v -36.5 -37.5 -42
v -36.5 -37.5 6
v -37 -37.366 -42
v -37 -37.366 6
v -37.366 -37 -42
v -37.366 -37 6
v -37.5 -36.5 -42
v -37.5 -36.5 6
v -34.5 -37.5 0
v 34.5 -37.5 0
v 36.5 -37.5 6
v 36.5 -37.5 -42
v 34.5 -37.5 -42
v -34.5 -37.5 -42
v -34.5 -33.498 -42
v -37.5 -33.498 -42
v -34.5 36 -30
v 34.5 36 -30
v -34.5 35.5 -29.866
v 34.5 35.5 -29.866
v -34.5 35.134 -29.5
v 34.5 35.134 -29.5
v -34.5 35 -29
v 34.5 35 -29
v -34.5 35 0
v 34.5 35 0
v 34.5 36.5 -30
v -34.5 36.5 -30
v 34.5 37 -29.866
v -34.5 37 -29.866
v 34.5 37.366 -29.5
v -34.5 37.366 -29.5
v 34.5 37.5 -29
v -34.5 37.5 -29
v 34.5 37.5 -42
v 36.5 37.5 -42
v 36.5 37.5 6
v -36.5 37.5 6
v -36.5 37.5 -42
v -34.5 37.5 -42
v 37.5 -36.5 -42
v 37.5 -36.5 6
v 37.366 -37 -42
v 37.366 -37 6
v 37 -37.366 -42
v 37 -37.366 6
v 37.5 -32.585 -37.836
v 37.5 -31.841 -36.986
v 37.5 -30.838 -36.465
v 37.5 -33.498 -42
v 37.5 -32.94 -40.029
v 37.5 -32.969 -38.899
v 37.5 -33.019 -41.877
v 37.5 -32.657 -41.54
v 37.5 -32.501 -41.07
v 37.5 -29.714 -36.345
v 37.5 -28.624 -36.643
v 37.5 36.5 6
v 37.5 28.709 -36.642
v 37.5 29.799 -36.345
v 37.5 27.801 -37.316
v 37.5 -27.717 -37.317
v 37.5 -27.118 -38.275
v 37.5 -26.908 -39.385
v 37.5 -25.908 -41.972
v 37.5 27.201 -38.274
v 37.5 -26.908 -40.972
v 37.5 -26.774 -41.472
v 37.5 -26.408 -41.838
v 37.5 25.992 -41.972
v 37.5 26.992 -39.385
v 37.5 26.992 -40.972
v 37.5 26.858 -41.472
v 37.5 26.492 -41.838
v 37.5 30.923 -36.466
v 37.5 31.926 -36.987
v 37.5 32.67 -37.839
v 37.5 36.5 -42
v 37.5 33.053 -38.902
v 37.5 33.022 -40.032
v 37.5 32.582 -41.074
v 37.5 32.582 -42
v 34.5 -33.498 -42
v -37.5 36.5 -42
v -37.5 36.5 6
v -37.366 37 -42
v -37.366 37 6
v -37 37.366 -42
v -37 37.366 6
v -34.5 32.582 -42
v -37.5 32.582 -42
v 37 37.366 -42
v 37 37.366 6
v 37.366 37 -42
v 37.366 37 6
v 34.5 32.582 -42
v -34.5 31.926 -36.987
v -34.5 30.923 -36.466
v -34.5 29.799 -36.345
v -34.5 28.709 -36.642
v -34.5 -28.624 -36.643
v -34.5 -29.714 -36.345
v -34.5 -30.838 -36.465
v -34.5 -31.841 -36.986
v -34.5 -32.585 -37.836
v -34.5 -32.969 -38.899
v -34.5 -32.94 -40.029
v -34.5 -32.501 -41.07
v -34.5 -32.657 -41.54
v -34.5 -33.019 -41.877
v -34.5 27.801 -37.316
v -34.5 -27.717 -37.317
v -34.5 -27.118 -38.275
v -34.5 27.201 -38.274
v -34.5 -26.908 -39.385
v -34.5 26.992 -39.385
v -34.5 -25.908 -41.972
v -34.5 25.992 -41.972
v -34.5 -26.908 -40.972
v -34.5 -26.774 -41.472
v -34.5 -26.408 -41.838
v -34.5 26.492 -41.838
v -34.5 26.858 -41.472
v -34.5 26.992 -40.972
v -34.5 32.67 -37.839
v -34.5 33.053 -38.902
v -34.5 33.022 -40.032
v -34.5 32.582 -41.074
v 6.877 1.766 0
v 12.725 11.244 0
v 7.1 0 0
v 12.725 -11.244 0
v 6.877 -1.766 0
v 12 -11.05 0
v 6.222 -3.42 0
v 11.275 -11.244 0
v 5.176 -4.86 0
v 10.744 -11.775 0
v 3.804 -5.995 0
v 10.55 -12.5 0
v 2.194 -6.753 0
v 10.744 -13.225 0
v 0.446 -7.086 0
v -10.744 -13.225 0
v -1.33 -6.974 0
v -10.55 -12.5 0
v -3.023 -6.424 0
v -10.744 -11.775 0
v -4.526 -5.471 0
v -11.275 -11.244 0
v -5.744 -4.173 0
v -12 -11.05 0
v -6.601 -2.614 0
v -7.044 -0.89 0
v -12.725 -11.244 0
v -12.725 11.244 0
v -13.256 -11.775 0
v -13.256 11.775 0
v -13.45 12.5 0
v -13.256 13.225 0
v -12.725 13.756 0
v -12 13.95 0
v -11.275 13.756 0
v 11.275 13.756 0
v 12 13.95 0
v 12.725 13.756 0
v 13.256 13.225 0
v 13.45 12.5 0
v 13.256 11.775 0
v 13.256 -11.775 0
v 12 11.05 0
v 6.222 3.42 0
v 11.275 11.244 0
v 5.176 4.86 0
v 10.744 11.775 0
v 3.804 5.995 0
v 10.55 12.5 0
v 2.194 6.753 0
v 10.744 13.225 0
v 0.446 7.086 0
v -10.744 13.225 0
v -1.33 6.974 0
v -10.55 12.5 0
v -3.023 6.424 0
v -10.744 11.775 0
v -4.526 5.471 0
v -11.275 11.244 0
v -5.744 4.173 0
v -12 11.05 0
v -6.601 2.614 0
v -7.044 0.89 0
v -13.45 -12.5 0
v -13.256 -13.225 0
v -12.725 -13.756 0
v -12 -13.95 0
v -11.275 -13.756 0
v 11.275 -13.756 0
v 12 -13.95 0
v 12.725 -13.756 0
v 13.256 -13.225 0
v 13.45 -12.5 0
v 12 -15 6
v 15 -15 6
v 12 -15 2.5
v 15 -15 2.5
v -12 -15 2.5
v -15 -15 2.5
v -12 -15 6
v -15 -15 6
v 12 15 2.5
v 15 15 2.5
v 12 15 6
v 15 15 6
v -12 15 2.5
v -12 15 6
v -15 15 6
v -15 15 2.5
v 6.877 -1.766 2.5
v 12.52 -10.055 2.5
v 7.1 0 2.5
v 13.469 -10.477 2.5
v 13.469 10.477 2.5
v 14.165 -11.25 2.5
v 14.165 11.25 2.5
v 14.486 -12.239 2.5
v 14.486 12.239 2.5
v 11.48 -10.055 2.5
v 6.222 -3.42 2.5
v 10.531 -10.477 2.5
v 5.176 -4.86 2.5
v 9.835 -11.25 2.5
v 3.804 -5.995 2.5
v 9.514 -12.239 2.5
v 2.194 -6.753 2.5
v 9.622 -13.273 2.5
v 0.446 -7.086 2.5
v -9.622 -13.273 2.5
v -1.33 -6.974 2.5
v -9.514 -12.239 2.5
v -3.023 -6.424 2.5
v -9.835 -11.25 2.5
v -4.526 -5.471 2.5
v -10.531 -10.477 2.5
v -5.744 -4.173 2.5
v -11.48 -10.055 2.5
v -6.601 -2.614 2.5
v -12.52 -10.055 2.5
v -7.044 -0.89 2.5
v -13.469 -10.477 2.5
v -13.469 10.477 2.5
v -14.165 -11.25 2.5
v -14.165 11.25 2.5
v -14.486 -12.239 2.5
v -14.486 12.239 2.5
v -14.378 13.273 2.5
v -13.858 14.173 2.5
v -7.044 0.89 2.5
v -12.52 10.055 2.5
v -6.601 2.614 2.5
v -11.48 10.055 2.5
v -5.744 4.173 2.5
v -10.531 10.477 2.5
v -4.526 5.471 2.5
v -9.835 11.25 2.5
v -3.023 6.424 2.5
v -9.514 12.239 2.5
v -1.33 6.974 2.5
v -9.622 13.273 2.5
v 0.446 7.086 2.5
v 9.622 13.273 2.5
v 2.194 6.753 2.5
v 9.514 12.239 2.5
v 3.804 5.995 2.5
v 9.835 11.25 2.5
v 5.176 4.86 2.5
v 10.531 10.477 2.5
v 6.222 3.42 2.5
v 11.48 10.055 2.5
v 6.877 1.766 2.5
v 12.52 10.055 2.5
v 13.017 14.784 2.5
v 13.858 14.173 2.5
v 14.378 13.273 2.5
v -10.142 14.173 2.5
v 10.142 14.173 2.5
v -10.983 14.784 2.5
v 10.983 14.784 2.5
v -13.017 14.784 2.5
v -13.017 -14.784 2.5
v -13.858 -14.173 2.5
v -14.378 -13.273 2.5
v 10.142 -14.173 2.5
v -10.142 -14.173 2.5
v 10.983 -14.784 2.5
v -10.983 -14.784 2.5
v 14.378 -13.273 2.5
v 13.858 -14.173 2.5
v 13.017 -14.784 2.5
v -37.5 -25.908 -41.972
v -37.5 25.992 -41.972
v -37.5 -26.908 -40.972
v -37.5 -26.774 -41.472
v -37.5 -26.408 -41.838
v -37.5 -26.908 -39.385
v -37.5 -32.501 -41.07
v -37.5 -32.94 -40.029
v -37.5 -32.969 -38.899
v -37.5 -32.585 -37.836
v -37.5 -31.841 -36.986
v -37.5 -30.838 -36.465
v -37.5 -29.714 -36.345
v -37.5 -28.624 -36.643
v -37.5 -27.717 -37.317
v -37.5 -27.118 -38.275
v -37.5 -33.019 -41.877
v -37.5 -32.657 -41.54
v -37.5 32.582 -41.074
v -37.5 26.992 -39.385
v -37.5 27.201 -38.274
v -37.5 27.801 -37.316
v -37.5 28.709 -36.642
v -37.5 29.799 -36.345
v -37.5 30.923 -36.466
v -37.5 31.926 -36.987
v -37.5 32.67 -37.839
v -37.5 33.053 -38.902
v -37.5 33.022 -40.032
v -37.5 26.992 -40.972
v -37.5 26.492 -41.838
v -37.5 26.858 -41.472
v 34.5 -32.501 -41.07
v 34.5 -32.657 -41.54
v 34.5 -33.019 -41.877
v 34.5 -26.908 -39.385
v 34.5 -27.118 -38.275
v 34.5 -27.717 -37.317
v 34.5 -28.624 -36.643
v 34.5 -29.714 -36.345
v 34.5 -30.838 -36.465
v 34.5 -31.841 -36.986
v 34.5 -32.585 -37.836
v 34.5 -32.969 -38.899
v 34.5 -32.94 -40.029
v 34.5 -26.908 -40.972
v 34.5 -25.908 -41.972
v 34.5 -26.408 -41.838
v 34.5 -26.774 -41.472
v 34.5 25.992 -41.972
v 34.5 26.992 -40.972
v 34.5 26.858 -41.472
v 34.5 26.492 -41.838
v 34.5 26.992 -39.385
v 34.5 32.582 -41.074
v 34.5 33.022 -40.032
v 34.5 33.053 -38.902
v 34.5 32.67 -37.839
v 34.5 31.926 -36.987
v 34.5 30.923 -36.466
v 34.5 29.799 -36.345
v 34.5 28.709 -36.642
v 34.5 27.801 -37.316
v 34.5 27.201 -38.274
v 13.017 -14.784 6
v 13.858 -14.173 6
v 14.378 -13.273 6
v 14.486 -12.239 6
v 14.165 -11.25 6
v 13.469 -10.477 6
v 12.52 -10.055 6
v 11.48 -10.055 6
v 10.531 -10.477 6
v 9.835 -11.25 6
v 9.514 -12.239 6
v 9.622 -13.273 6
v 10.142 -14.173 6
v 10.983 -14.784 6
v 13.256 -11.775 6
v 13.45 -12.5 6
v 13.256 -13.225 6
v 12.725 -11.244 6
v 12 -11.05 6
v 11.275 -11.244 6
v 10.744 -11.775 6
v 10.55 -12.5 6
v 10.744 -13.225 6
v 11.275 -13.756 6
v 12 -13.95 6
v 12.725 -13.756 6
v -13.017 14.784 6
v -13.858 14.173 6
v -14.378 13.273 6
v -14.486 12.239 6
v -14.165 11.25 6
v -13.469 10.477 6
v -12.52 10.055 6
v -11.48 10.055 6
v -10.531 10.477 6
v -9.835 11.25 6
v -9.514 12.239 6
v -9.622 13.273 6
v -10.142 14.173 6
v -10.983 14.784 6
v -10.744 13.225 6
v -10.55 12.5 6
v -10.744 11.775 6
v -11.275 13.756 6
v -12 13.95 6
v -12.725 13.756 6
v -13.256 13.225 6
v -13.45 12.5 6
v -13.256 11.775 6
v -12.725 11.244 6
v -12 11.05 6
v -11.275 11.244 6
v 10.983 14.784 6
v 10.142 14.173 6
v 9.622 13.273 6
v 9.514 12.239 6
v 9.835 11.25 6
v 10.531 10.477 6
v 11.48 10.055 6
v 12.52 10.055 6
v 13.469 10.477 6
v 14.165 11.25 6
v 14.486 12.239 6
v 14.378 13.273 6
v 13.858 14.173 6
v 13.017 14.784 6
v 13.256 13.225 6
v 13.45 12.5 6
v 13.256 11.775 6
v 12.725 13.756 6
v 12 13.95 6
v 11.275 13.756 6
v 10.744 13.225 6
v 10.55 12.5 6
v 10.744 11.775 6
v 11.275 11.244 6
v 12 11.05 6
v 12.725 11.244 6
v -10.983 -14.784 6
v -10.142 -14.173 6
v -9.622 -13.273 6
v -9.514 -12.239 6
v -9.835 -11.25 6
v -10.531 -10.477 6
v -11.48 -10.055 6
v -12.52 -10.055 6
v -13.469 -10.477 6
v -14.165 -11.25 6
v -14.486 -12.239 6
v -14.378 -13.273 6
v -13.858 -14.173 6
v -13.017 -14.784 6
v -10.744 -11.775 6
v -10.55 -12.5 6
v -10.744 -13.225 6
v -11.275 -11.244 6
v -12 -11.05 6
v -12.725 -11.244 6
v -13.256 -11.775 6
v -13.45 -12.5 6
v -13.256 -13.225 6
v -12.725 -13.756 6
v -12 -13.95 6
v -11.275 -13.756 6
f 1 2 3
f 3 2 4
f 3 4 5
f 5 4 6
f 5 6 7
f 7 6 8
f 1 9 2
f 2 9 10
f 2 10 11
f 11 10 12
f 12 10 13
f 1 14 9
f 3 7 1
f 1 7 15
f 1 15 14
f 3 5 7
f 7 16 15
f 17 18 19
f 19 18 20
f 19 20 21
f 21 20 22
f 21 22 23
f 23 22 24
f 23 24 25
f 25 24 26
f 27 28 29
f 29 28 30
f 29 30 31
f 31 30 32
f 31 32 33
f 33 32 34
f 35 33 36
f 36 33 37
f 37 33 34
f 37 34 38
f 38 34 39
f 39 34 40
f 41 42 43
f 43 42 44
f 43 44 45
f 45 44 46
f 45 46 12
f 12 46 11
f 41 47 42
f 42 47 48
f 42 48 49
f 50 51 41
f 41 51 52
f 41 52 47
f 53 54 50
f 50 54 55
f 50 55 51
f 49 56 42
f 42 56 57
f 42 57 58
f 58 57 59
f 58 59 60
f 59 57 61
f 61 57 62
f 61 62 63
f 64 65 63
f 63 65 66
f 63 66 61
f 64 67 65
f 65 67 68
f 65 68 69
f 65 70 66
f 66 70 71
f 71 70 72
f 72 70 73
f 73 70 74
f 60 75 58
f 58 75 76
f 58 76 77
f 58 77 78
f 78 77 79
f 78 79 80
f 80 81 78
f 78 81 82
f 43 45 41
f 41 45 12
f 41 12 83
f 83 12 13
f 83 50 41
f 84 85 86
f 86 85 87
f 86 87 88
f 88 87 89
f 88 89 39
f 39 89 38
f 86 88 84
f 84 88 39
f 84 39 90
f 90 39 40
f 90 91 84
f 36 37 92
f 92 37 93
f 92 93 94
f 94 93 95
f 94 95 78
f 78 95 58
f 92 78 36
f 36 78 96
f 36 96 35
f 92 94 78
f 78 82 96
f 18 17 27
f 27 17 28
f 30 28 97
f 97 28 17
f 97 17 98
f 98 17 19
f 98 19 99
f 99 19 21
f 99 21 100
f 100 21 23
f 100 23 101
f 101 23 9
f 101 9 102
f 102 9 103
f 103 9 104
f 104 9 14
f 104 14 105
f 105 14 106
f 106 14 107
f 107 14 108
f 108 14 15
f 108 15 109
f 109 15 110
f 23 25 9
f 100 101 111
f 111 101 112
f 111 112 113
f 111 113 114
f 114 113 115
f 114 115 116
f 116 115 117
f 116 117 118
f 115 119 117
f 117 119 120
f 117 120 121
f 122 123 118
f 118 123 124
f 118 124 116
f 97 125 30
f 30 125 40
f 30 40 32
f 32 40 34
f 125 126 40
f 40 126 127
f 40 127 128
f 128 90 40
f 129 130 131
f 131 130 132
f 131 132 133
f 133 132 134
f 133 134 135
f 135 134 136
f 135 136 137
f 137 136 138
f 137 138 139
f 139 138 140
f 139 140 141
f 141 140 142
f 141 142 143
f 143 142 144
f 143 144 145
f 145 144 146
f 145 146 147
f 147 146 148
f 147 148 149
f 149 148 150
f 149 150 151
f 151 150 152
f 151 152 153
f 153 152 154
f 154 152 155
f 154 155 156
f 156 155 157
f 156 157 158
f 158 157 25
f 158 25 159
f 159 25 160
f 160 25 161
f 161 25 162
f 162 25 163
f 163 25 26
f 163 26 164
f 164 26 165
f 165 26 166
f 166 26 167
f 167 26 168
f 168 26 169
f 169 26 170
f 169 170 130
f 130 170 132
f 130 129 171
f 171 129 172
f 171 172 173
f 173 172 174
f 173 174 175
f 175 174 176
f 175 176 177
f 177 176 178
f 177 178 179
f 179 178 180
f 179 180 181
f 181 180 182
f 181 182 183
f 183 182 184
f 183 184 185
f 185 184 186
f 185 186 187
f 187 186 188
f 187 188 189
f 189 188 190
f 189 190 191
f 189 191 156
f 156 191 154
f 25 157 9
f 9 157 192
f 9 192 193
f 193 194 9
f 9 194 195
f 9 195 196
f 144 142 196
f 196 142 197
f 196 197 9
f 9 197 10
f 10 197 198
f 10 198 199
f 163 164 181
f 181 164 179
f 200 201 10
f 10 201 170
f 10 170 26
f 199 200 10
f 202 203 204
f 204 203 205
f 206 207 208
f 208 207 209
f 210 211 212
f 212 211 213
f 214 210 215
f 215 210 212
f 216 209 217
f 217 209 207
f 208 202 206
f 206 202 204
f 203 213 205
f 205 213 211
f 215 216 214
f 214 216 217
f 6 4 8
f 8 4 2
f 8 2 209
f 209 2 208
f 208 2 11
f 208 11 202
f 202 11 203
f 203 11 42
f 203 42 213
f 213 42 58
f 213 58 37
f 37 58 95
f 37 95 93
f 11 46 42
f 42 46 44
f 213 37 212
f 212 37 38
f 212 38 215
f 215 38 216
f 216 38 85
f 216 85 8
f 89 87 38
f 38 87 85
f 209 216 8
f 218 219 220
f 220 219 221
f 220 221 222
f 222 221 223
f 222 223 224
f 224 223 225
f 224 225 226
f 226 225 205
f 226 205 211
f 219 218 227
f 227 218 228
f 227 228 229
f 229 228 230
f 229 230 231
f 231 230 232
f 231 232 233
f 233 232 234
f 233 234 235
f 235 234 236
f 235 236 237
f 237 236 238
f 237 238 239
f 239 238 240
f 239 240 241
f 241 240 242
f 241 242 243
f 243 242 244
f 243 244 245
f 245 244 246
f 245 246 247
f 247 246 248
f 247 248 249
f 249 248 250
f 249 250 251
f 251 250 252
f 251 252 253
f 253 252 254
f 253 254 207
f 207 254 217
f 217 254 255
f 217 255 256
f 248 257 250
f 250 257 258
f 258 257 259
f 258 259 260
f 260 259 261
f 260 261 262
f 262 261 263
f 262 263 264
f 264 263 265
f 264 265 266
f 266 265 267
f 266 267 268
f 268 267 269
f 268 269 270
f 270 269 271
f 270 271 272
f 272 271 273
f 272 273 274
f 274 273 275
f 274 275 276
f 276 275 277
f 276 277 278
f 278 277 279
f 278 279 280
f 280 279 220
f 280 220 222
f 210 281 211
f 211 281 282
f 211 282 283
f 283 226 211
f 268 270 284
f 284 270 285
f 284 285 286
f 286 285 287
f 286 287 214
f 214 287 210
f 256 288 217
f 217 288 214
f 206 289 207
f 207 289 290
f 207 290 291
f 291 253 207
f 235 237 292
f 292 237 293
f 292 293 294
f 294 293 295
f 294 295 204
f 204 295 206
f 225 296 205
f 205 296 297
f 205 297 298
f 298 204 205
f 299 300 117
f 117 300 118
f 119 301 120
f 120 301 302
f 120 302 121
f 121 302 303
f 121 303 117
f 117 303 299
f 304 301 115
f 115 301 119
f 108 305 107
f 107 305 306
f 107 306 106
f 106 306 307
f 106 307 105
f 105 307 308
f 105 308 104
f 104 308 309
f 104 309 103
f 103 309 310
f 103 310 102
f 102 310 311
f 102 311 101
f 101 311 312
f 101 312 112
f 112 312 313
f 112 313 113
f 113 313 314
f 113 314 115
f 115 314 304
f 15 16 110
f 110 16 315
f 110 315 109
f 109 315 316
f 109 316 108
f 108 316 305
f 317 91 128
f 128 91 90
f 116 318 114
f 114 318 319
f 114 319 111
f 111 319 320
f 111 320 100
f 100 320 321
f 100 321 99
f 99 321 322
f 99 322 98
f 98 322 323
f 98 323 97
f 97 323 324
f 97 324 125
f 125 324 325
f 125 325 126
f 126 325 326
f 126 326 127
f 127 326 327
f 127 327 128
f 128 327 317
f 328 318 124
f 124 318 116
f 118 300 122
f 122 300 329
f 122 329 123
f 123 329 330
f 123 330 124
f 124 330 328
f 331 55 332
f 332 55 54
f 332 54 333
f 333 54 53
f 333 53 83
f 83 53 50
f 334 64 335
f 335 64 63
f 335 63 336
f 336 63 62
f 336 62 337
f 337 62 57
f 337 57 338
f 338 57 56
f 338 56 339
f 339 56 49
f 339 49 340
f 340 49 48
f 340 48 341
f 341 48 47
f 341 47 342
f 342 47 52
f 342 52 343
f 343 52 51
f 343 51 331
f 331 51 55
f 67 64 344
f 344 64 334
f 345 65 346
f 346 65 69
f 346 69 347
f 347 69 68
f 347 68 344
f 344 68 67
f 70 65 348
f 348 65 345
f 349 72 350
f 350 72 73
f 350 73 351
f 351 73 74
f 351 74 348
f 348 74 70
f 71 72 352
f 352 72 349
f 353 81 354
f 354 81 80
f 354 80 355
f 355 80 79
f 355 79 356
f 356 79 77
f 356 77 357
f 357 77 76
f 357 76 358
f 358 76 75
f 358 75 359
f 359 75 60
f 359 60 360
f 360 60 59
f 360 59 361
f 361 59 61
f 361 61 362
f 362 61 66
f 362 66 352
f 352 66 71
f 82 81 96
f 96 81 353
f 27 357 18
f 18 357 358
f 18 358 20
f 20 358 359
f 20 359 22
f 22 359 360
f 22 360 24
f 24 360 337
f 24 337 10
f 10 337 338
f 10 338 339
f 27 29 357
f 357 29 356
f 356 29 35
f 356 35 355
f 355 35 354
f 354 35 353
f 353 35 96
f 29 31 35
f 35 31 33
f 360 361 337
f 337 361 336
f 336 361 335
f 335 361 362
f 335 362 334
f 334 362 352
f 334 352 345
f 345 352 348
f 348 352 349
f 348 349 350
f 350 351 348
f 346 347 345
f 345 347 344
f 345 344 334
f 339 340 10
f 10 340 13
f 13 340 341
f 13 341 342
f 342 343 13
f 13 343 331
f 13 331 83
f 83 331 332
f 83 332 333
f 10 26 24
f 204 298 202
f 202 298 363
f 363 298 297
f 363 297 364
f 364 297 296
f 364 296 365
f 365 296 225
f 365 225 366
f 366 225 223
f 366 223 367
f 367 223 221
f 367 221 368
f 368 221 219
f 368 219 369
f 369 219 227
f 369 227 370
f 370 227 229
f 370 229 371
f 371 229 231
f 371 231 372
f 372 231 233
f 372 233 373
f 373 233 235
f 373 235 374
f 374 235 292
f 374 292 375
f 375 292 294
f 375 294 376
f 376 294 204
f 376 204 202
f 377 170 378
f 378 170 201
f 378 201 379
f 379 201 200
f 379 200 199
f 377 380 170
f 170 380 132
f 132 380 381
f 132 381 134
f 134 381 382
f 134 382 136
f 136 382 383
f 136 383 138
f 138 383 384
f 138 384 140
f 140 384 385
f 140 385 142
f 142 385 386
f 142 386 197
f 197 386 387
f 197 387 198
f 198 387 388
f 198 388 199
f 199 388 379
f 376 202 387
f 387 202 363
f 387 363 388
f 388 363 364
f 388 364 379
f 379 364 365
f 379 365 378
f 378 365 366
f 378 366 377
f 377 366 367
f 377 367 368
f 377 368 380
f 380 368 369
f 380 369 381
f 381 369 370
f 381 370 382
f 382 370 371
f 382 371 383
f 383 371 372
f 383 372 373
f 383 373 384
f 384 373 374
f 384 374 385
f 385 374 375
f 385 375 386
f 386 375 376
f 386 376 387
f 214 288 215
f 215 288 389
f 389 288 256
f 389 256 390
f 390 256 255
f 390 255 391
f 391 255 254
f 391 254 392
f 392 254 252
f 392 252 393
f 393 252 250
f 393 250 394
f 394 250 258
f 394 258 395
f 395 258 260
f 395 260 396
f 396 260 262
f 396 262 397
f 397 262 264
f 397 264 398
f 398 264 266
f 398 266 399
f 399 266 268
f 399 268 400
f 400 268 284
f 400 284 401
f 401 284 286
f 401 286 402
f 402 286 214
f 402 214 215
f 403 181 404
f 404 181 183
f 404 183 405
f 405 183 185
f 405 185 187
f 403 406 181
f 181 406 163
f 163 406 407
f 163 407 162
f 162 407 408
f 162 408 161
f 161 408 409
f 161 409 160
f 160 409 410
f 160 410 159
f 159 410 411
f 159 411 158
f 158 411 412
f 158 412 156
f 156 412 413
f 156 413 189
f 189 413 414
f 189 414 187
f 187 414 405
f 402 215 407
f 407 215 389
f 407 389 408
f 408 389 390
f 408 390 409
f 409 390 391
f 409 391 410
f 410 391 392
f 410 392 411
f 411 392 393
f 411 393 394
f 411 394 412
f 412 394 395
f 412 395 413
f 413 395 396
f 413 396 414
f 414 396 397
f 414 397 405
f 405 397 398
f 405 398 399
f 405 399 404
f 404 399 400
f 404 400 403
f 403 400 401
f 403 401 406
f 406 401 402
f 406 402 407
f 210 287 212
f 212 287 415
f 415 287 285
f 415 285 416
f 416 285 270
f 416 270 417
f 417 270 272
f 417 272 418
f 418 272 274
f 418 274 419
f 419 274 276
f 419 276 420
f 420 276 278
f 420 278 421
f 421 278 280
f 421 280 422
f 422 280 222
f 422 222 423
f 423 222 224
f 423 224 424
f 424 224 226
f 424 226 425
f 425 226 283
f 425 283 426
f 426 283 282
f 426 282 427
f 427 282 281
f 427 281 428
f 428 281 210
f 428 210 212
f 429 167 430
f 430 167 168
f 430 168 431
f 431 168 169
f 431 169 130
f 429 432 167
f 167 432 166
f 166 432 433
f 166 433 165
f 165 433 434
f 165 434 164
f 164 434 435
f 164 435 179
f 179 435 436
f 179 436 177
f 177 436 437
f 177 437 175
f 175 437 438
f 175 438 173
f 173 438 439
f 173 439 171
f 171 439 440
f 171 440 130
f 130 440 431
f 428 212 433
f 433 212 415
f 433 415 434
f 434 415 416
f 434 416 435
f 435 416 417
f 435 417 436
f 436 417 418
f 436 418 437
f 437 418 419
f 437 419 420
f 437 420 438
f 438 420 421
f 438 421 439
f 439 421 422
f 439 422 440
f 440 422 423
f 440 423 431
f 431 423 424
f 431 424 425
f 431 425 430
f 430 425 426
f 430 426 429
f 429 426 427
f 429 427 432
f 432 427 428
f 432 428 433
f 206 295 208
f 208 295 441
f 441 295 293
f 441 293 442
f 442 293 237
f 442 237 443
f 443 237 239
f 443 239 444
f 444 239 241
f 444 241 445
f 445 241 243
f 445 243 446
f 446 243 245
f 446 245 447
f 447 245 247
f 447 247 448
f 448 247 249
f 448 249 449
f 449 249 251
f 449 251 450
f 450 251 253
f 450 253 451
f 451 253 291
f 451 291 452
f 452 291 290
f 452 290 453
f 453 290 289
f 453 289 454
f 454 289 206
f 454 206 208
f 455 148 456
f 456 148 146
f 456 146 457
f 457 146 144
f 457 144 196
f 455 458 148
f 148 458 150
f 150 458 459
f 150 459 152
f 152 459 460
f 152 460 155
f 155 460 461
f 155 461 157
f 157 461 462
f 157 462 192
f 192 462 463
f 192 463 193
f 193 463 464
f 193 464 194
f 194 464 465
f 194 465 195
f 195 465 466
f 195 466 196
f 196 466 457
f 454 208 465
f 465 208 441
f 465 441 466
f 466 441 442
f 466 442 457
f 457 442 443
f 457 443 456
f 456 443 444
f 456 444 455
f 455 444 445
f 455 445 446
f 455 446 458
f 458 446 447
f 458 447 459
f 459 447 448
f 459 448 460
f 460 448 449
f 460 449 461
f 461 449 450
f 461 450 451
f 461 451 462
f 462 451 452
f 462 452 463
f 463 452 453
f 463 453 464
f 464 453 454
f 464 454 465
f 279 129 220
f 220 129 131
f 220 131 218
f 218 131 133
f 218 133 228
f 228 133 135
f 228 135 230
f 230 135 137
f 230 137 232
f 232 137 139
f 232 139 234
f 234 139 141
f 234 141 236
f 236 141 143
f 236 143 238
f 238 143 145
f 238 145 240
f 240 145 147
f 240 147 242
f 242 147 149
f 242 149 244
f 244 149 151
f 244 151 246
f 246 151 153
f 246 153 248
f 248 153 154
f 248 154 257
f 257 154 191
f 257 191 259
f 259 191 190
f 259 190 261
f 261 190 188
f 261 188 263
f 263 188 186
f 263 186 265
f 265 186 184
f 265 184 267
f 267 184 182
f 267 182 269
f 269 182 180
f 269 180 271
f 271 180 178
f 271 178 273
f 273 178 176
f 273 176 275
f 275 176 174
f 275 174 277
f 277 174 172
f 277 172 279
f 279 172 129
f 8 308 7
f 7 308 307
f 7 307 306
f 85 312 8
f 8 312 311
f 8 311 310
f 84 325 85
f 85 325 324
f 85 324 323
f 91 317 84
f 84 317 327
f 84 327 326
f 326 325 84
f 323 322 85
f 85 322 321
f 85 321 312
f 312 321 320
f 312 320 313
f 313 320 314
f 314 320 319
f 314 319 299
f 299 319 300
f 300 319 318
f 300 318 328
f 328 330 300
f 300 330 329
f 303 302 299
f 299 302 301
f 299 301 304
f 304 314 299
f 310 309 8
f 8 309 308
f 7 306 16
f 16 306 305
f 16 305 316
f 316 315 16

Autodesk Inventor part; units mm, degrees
ref_plane "YZ Plane" through (0, 0, 0) normal (1, 0, 0) x (0, 1, 0)
ref_plane "XZ Plane" through (0, 0, 0) normal (0, 1, 0) x (-1, 0, 0)
ref_plane "XY Plane" through (0, 0, 0) normal (0, 0, 1) x (1, 0, 0)
sketch "Sketch1" plane through (0, 0, 0) normal (0, 0, 1) x (1, 0, 0)
  line L0 (37.5, -37.5) -> (-37.5, -37.5)
  line L1 (-37.5, -37.5) -> (-37.5, 37.5)
  line L2 (-37.5, 37.5) -> (37.5, 37.5)
  line L3 (37.5, 37.5) -> (37.5, -37.5)
  line L4 (37.5, -37.5) -> (-37.5, 37.5) construction
  line L5 (-37.5, -37.5) -> (37.5, 37.5) construction
  circle A0 centre (0, 0) radius 7.1
  circle A1 centre (-12, 12.5) radius 2.5
  circle A2 centre (-12, 12.5) radius 1.45
  line L6 (0, 2.5789) -> (0, -2.8298)
  line L7 (-2.79, 0) -> (3.5689, 0)
  circle A3 centre (12, 12.5) radius 2.5
  circle A4 centre (12, 12.5) radius 1.45
  circle A5 centre (-12, -12.5) radius 2.5
  circle A6 centre (-12, -12.5) radius 1.45
  circle A7 centre (12, -12.5) radius 2.5
  circle A8 centre (12, -12.5) radius 1.45
  line L8 (-52.5, 0) -> (52.5, 0) projected
  dimension "d0" = 75
  dimension "d1" = 75
  dimension "d2" = 14.2
  dimension "d3" = 5
  dimension "d4" = 2.9
  dimension "d7" = 24
  dimension "d10" = 25
extrude "Extrusion1" add sketch "Sketch1" along normal blind 2.5 contours L0 L1 L8 A0 L3 | L8 A0 L1 L2 L3
extrude "Extrusion2" add sketch "Sketch1" along normal blind 6 contours A1 | A3 | A5 | A7
sketch "Sketch2" plane through (37.5, -37.5, 0) normal (1, 0, 0) x (0, 0, -1)
  line L0 (0, -0.0252) -> (0, 75)
  arc A0 (41.0737, 70.0817) -> (39.3854, 64.4916) centre (39.3854, 67.5416) ccw
  arc A1 (39.3854, 10.5916) -> (41.0737, 5.0015) centre (39.3854, 7.5416) ccw
  line L1 (13.8443, 37.5416) -> (29.6757, 37.5416)
  line L2 (0, 75) -> (42, 75)
  line L3 (42, 0) -> (0, 0)
  line L4 (0, 0) -> (0, 75)
  line L5 (39.3854, 64.4916) -> (40.9723, 64.4916)
  line L6 (39.3854, 10.5916) -> (40.9723, 10.5916)
  line L7 (41.0737, 5.0015) -> (41, 5.0015)
  line L8 (41.0737, 70.0817) -> (42, 70.0817)
  line L9 (42, 75) -> (42, 70.0817)
  line L10 (41.9723, 63.4916) -> (41.9723, 11.5916)
  line L11 (42, 4.0015) -> (42, 0)
  arc A2 (41.9723, 63.4916) -> (40.9723, 64.4916) centre (40.9723, 63.4916) ccw
  arc A3 (40.9723, 10.5916) -> (41.9723, 11.5916) centre (40.9723, 11.5916) ccw
  arc A4 (42, 4.0015) -> (41, 5.0015) centre (41, 4.0015) ccw
  point P0 (0, 37.5)
  point P1 (42, 5.0015)
  point P2 (41.07, 4.9991)
  dimension "d18" = 6.1
  dimension "d19" = 6.1
  dimension "d20" = 60
  dimension "d21" = 42
  dimension "d22" = 1
  dimension "d31" = 1
extrude "Extrusion3" add sketch "Sketch2" against normal blind 3 contours L0 L2 L9 L8 A0 L5 A2 L10 A3 L6 A1 A4 L11 L3
sketch "Sketch3" plane through (-37.5, -37.5, 0) normal (-1, 0, 0) x (0, 0, 1)
  line L0 (-42, 4.0015) -> (-42, 0) projected
  line L1 (-42, 0) -> (0, 0) projected
  line L2 (0, 75) -> (0, 0) projected
  line L3 (0, 75) -> (-42, 75) projected
  line L4 (-42, 75) -> (-42, 70.0817) projected
  line L5 (-42, 70.0817) -> (-41.0737, 70.0817) projected
  arc A0 (-39.3854, 64.4916) -> (-41.0737, 70.0817) centre (-39.3854, 67.5416) ccw projected
  line L6 (-39.3854, 64.4916) -> (-40.9723, 64.4916) projected
  arc A1 (-40.9723, 64.4916) -> (-41.9723, 63.4916) centre (-40.9723, 63.4916) ccw projected
  line L7 (-41.9723, 63.4916) -> (-41.9723, 11.5916) projected
  arc A2 (-41.9723, 11.5916) -> (-40.9723, 10.5916) centre (-40.9723, 11.5916) ccw projected
  line L8 (-40.9723, 10.5916) -> (-39.3854, 10.5916) projected
  arc A3 (-41.07, 4.9991) -> (-39.3854, 10.5916) centre (-39.3854, 7.5416) ccw projected
  arc A4 (-41.07, 4.9991) -> (-42, 4.0015) centre (-41, 4.0015) ccw projected
  point P0 (0, 37.5)
extrude "Extrusion4" add sketch "Sketch3" against normal blind 3
sketch "Sketch4" plane through (0, 0, 2.5) normal (0, 0, 1) x (1, 0, 0)
  line L0 (15, -15) -> (-15, -15)
  line L1 (-15, -15) -> (-15, 15)
  line L2 (-15, 15) -> (15, 15)
  line L3 (15, 15) -> (15, -15)
  line L4 (15, -15) -> (-15, 15) construction
  line L5 (-15, -15) -> (15, 15) construction
  line L6 (37.5, 37.5) -> (-37.5, 37.5) projected
  line L7 (-37.5, 37.5) -> (37.5, 37.5)
  line L8 (37.5, 37.5) -> (37.5, -37.5)
  line L9 (37.5, -37.5) -> (-37.5, -37.5)
  line L10 (-37.5, -37.5) -> (-37.5, 37.5)
  point P0 (0, 0)
  dimension "d27" = 30
  dimension "d28" = 30
extrude "Extrusion5" add sketch "Sketch4" along normal up to surface (3.5 mm away)
sketch "Sketch5" plane through (0, 0, 0) normal (0, 0, -1) x (-1, 0, 0)
  line L0 (-34.5, 37.5) -> (-34.5, 32.5817) projected
  line L1 (34.5, 32.5817) -> (34.5, 37.5) projected
  line L2 (-34.5, 37.5) -> (34.5, 37.5)
  line L3 (34.5, 37.5) -> (34.5, 35)
  line L4 (34.5, 35) -> (-34.5, 35)
  line L5 (-34.5, 35) -> (-34.5, 37.5)
  point P0 (0, 0)
  dimension "d32" = 2.5
extrude "Extrusion6" add sketch "Sketch5" along normal blind 30
fillet "Fillet2" radius 1 6 edges at (37.5, 37.5, -18) (-37.5, 37.5, -18) (37.5, -37.5, -18) (0, 37.5, -30) (0, 35, -30) (-37.5, -37.5, -18)
properties part number "W(75mm)-camera(FIT0701)"
